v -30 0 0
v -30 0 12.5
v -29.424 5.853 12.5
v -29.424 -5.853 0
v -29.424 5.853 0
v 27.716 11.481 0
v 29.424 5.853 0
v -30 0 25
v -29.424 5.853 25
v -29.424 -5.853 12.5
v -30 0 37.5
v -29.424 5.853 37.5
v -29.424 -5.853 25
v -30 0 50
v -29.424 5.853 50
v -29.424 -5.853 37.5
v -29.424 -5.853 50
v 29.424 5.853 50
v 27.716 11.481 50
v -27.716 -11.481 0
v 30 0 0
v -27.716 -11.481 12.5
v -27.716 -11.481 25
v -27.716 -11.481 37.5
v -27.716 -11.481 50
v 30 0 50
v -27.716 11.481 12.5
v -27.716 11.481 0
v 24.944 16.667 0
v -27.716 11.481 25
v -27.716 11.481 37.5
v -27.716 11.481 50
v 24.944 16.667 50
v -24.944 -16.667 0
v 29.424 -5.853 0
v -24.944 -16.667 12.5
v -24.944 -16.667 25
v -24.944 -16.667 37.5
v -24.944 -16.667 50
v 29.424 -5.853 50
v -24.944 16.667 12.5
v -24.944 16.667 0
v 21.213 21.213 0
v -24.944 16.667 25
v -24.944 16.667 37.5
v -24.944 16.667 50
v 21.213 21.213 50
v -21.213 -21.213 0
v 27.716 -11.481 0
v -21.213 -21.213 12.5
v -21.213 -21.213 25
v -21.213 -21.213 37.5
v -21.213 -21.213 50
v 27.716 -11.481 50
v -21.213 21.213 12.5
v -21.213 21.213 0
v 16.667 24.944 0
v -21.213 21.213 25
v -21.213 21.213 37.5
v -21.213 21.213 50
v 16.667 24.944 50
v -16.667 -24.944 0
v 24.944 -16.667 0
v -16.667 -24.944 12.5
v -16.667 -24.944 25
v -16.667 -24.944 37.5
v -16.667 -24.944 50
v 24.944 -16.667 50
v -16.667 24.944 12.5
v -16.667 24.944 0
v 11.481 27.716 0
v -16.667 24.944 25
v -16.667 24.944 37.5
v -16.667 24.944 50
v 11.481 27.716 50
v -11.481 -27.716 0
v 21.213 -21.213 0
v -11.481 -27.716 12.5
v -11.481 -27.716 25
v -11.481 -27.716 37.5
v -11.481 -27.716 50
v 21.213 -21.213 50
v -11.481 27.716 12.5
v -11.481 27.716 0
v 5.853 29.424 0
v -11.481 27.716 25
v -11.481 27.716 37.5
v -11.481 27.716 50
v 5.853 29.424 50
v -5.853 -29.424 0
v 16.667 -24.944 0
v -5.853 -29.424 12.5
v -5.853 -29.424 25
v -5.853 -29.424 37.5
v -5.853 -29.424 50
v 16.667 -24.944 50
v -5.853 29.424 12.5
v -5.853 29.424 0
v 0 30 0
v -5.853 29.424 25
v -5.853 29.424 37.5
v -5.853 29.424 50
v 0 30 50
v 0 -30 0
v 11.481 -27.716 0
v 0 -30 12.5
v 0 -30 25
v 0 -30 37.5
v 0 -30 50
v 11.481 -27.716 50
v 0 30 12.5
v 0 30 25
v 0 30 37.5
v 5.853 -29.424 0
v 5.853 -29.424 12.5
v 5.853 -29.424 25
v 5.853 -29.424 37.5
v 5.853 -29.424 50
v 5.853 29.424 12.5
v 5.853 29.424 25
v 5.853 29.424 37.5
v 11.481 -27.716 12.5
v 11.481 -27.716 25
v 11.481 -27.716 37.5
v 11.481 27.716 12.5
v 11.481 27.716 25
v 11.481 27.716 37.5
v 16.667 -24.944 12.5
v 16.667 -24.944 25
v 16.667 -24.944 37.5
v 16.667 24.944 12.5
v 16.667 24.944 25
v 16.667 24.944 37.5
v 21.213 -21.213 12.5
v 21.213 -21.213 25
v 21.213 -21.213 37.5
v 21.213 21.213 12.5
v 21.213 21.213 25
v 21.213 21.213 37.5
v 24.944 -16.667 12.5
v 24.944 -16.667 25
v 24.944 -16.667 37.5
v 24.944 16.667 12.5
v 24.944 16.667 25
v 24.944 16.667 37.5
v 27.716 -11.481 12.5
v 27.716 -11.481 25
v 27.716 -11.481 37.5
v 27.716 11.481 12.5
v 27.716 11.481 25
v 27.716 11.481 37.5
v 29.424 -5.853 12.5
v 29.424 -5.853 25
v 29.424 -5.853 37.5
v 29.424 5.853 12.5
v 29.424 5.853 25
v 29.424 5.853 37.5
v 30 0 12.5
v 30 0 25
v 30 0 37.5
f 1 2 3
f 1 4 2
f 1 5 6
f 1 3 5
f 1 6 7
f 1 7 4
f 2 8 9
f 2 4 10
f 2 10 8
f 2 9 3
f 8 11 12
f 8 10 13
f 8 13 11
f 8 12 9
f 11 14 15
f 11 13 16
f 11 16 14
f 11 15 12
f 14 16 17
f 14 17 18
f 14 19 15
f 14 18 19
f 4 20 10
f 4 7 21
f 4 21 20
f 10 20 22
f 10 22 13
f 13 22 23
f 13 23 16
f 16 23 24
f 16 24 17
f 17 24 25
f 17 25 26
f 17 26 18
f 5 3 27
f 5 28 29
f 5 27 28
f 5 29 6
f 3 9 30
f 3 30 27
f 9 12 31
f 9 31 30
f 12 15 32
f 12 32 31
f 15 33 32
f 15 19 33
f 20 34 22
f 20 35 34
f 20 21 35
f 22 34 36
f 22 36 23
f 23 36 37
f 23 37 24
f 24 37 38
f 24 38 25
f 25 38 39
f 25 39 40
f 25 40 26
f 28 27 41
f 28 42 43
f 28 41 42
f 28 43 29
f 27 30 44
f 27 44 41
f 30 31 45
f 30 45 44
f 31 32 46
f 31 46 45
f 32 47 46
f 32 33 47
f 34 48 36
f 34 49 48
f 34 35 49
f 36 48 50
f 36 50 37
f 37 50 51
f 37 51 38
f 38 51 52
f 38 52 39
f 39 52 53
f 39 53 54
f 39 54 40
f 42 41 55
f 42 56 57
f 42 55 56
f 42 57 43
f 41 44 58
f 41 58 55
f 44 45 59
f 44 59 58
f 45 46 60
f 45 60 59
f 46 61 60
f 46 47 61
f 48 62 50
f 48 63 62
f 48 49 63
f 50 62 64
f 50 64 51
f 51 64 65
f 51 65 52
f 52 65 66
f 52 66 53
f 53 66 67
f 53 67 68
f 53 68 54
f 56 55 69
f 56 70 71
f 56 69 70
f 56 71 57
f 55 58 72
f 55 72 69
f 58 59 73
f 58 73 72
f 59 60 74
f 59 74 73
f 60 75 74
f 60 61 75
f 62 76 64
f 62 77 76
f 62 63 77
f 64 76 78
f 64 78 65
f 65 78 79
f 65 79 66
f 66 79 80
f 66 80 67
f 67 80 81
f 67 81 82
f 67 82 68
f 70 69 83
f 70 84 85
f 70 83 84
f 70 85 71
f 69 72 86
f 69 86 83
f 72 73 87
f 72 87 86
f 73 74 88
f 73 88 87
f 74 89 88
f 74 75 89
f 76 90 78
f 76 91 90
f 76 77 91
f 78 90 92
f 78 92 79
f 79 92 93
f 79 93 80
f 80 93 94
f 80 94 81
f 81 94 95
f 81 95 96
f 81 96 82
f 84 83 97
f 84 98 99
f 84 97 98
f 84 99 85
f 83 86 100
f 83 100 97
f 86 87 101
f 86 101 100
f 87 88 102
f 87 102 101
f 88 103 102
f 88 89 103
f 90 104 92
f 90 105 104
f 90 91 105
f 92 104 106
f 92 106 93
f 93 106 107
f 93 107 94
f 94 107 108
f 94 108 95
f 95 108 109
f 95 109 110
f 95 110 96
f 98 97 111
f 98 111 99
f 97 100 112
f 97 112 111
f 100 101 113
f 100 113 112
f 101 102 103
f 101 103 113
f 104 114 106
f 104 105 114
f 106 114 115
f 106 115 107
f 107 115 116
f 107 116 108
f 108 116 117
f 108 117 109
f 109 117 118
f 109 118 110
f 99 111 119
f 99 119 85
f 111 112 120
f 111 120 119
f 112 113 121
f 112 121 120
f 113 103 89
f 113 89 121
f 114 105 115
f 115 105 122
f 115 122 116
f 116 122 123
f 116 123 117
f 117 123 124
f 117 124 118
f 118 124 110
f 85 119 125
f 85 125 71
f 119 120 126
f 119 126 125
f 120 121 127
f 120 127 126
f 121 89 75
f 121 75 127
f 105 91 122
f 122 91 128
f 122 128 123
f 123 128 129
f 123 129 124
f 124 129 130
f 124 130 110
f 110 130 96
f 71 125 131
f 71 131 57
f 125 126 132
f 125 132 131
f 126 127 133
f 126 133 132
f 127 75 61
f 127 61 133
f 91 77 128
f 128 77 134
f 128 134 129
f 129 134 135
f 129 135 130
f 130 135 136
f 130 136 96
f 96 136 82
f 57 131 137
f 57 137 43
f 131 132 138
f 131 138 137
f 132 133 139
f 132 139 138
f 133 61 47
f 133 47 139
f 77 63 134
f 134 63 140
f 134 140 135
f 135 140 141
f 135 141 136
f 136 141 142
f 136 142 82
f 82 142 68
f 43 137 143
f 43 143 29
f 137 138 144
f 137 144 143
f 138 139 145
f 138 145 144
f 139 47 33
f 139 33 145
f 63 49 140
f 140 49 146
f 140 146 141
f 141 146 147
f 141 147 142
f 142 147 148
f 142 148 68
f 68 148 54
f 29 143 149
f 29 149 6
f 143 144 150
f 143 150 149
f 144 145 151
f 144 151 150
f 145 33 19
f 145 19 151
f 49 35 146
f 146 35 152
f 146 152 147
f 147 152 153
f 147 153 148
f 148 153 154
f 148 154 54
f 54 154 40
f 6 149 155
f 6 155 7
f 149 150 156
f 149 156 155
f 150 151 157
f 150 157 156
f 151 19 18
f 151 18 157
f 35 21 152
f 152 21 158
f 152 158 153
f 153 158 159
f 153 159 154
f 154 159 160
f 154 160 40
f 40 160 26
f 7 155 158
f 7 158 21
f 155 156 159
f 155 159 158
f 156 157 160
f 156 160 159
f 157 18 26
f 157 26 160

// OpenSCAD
// Start: lazy_union
default_5_default_5();
// End: lazy_union

// Modules.

// 'PartMaterial undef-default - default 5.0'
module default_5_default_5() {
  // 'None : _combine_solids_and_holes'
  union() {
    // 'example3 : _combine_solids_and_holes'
    union() {
      // 'prism'
      multmatrix(m=[[-1.0, -0.0, -0.0, -0.0], [-0.0, -1.0, -0.0, -0.0], [0.0, 0.0, 1.0, 0.0], [0.0, 0.0, 0.0, 1.0]]) {
        // 'prism : _combine_solids_and_holes'
        union() {
          // 'prism'
          linear_extrude(height=50.0, twist=0.0, slices=4, scale=[1.0, 1.0]) {
            polygon(points=[[-30.0, 0.0], [-29.423558412096913, 5.852709660483847], [-27.716385975338603, 11.480502970952694], [-24.944088369076358, 16.667106990588067], [-21.213203435596427, 21.213203435596427], [-16.667106990588067, 24.944088369076358], [-11.480502970952696, 27.716385975338603], [-5.85270966048385, 29.423558412096913], [-1.83697019872103e-15, 30.0], [5.852709660483846, 29.423558412096913], [11.480502970952692, 27.716385975338603], [16.66710699058806, 24.94408836907636], [21.213203435596423, 21.213203435596427], [24.94408836907636, 16.667106990588067], [27.716385975338603, 11.480502970952697], [29.423558412096913, 5.852709660483859], [30.0, 3.67394039744206e-15], [29.423558412096913, -5.852709660483851], [27.716385975338607, -11.48050297095269], [24.944088369076365, -16.66710699058806], [21.21320343559643, -21.213203435596423], [16.667106990588067, -24.944088369076358], [11.48050297095271, -27.716385975338596], [5.8527096604838595, -29.42355841209691], [5.510910596163089e-15, -30.0], [-5.852709660483849, -29.423558412096913], [-11.480502970952701, -27.7163859753386], [-16.667106990588056, -24.944088369076365], [-21.21320343559642, -21.21320343559643], [-24.944088369076358, -16.667106990588067], [-27.716385975338596, -11.480502970952712], [-29.42355841209691, -5.852709660483861]]);
          }
        }
      }
    }
  }
} // end module default_5_default_5
